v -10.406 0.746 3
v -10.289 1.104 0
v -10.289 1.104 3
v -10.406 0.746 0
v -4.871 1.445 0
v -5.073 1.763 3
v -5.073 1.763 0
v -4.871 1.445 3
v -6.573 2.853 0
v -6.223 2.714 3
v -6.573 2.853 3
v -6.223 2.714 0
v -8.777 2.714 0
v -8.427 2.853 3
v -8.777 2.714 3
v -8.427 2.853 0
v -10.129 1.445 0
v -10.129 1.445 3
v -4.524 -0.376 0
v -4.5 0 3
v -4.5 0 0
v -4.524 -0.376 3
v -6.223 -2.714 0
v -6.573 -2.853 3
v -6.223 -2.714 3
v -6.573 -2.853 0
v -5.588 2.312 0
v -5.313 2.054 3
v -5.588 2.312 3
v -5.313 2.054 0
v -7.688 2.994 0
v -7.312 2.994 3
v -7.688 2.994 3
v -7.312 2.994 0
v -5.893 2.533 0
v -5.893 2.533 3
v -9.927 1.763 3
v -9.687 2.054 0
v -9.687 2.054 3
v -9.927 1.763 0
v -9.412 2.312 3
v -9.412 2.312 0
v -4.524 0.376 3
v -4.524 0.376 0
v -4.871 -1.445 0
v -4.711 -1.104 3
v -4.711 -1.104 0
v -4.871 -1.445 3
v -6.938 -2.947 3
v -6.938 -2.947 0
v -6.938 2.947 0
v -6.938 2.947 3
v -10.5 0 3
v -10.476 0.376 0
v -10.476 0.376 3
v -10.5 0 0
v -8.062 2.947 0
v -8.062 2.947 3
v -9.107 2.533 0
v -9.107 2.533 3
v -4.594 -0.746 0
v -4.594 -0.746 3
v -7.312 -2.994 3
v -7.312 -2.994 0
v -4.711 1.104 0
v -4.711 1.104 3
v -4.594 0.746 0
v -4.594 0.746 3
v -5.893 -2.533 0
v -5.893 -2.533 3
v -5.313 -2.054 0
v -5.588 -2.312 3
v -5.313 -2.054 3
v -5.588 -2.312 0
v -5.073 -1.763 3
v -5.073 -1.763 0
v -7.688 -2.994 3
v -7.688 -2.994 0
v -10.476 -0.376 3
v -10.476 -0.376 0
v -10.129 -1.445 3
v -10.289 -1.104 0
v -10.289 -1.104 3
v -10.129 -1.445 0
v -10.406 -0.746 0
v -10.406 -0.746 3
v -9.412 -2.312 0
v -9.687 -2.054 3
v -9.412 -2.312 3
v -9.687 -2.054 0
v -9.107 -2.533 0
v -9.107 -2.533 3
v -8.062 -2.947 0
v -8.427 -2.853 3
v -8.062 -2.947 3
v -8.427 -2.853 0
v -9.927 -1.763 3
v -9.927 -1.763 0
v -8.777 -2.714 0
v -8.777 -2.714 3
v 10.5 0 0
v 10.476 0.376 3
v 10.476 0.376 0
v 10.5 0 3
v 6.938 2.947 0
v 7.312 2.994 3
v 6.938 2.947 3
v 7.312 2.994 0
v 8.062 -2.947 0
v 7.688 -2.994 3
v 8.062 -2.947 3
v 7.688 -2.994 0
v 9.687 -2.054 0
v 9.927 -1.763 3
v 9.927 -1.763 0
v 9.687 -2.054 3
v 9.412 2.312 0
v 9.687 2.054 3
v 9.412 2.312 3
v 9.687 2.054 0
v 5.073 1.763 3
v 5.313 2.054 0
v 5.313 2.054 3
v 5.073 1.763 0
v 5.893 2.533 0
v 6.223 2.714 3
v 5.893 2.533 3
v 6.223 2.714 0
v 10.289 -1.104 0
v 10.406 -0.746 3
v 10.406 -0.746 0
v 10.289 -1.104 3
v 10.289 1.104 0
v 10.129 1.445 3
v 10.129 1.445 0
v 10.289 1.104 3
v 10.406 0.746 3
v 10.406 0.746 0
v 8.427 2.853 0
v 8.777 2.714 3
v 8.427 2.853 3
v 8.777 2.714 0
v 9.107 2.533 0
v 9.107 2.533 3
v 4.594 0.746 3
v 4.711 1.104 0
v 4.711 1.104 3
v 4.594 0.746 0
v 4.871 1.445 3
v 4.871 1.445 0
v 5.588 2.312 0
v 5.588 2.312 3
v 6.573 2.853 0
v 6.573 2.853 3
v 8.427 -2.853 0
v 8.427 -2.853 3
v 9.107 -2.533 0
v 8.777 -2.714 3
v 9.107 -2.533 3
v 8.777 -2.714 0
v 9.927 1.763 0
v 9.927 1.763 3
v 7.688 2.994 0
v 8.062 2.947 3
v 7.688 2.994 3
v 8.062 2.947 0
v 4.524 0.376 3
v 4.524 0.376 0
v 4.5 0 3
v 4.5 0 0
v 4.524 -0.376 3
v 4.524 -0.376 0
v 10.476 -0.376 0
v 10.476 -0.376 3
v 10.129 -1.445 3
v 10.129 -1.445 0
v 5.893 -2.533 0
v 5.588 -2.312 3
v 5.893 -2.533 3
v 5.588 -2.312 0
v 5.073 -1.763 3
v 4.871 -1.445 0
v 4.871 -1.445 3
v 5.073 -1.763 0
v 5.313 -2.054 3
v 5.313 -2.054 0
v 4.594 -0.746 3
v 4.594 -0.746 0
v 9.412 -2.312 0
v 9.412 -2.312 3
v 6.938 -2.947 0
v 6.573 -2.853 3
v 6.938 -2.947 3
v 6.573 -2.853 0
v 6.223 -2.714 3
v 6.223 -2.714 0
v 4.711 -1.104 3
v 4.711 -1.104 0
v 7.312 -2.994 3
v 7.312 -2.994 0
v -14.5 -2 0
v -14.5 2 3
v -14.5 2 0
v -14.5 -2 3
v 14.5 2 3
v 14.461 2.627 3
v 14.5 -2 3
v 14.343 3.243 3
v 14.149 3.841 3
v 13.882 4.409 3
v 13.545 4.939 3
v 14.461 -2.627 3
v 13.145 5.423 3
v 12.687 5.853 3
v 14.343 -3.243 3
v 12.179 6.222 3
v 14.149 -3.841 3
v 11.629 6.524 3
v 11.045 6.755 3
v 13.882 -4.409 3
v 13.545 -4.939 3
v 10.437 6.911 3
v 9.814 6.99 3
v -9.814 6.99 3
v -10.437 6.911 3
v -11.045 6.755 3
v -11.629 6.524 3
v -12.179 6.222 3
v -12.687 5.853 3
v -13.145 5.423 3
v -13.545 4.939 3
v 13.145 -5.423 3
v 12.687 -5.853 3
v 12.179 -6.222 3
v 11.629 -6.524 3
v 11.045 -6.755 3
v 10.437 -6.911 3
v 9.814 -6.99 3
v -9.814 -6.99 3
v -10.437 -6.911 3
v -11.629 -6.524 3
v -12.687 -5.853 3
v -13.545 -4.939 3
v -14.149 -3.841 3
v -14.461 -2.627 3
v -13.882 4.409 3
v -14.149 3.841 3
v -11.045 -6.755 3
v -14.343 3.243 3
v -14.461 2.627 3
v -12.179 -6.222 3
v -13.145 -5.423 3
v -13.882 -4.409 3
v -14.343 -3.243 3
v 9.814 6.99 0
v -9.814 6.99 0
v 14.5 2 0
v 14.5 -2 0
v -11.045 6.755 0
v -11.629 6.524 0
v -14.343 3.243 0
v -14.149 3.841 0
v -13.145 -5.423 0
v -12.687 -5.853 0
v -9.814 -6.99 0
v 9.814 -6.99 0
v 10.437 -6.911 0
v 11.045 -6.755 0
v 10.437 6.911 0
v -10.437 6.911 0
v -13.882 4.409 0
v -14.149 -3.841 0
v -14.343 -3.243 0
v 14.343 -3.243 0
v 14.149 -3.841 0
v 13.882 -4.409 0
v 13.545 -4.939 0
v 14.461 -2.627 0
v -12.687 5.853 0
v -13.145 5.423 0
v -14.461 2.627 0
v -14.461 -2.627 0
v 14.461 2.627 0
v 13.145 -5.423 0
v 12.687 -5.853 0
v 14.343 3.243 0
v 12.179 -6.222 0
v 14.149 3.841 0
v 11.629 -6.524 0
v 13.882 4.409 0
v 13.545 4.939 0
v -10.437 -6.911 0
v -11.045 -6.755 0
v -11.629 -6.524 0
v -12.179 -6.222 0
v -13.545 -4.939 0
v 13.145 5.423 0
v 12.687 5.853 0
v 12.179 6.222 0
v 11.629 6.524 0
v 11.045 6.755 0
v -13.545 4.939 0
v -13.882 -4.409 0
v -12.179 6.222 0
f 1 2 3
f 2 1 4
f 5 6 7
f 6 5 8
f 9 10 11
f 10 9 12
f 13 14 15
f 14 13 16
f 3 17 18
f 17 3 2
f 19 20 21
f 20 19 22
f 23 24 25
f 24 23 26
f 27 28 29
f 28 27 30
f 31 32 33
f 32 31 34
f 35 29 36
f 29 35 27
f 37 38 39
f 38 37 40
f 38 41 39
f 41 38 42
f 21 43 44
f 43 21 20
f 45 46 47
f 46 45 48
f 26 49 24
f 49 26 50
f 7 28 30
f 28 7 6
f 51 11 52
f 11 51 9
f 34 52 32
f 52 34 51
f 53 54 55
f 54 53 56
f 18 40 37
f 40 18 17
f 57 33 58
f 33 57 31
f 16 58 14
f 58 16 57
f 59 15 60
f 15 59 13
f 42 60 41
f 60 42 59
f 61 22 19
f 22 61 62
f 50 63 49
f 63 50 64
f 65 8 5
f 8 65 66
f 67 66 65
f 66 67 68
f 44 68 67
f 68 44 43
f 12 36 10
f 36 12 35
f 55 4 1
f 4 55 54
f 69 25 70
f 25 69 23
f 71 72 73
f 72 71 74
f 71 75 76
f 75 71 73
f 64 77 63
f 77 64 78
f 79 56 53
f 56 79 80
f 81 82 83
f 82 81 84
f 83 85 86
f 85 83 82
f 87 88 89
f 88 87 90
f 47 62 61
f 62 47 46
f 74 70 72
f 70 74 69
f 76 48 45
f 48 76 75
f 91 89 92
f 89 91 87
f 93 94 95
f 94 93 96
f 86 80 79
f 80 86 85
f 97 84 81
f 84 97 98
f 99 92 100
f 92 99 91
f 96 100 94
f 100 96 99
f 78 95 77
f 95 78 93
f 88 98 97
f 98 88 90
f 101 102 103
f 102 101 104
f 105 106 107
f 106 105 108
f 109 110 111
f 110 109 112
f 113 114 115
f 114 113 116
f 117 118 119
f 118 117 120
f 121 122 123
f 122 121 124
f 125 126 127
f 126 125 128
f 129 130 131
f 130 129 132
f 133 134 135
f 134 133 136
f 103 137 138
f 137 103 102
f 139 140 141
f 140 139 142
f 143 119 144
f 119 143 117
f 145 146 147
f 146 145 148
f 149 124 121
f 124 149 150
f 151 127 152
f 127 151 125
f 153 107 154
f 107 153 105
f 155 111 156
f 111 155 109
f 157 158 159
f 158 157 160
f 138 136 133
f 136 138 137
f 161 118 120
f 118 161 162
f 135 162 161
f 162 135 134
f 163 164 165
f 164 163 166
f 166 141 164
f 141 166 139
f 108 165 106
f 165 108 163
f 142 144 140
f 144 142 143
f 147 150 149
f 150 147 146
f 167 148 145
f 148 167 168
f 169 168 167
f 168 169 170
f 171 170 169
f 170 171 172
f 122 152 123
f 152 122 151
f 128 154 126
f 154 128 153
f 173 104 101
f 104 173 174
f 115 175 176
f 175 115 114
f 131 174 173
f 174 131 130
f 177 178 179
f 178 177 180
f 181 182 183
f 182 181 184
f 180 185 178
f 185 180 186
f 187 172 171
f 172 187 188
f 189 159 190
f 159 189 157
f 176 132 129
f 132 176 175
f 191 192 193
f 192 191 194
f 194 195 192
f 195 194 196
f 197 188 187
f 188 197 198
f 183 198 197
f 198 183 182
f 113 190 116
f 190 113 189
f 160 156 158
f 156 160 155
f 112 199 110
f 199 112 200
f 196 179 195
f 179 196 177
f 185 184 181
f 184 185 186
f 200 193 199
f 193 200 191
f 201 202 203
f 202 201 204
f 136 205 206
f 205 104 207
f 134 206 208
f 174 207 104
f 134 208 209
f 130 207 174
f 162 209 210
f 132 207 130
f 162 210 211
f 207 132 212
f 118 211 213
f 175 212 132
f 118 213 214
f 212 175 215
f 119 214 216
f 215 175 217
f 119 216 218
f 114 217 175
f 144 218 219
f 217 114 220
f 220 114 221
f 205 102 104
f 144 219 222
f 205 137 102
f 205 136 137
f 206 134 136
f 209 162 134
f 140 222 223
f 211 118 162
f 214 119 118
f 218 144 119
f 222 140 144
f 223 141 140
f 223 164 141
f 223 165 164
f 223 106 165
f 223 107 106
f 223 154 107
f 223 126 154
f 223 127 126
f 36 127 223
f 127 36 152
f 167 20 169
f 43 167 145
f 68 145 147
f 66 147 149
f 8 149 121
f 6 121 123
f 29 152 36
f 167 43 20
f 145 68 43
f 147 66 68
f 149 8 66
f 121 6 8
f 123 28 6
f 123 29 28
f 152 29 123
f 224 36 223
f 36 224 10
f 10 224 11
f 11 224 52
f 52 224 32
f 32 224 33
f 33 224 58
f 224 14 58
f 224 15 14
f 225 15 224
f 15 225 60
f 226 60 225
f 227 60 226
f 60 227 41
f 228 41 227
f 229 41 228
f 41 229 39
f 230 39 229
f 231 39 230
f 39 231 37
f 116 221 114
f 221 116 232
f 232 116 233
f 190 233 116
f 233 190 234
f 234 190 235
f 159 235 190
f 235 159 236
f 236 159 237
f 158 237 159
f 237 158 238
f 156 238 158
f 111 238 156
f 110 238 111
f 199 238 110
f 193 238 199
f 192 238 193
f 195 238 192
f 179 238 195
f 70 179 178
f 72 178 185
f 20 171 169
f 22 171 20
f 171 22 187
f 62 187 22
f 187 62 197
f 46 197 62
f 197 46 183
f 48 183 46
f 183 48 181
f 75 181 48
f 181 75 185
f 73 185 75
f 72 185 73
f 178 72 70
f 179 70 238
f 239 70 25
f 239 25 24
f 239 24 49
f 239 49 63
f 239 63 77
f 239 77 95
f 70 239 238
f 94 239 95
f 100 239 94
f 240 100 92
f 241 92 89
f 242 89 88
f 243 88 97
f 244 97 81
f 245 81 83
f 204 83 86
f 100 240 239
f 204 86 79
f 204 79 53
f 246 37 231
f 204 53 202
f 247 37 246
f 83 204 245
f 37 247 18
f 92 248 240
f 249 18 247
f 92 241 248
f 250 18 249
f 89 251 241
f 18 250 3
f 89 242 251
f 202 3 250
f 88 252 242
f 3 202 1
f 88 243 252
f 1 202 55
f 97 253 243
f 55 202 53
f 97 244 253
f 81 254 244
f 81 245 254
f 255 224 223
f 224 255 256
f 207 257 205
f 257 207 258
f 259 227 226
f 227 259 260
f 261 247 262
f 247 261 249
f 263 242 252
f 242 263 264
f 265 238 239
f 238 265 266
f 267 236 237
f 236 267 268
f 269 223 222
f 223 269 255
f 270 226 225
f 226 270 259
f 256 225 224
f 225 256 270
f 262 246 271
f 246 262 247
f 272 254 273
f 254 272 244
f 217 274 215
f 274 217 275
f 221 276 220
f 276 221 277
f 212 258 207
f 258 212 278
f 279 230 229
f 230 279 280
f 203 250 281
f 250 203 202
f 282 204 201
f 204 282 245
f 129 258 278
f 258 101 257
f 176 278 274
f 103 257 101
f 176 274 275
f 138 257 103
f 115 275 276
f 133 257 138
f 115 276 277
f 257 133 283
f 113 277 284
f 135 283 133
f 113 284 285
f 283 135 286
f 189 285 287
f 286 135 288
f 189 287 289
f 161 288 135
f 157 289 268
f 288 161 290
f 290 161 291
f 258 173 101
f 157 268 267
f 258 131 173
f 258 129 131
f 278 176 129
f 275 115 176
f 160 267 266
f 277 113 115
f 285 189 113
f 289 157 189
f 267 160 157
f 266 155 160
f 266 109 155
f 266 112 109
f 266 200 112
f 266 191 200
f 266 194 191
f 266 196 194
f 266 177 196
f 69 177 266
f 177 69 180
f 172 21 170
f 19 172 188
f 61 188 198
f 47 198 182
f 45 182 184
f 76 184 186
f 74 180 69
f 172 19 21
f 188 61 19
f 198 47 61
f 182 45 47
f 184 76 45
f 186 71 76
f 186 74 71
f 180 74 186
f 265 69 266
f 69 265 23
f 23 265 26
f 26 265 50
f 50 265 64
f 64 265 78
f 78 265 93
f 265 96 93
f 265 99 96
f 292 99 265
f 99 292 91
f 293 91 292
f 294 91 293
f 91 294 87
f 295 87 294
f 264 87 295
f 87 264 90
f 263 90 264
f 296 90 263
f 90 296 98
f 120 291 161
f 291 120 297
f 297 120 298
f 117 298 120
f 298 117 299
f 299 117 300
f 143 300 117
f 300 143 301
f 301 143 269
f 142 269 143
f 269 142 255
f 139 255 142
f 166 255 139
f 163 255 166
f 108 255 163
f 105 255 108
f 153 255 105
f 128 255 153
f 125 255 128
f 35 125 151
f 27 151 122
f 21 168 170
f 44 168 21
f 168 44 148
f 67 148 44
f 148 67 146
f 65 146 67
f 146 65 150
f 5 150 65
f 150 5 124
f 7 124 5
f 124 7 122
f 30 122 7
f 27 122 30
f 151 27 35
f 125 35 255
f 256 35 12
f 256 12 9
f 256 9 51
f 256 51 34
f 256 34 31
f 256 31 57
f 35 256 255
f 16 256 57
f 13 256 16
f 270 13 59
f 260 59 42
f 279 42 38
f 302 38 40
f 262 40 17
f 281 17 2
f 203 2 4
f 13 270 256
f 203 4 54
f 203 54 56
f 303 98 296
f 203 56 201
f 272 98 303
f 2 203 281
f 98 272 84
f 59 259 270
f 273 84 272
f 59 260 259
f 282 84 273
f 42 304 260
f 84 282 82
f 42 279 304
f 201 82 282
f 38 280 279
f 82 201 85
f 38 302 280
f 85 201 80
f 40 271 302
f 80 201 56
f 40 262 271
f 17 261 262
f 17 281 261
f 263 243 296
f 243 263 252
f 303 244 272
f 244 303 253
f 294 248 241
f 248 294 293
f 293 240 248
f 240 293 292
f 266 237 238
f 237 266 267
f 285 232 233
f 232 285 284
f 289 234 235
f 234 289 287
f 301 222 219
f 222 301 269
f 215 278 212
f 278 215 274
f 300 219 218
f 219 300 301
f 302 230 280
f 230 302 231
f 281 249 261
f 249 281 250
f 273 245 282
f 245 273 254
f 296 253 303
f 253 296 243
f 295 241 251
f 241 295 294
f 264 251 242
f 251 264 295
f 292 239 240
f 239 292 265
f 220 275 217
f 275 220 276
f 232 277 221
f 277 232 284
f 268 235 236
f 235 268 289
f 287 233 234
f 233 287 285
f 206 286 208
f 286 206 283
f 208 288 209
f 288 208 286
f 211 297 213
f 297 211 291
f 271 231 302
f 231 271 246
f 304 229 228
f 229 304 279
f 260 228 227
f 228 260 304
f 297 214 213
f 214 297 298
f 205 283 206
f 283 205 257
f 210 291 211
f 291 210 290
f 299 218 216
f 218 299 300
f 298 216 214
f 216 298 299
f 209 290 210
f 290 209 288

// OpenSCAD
// Generated by SolidPython 1.1.3 on 2023-03-12 21:50:31
$fn = 50;


difference() {
	union() {
		translate(v = [0, 0, 0]) {
			rotate(a = [0, 0, 0]) {
				hull() {
					translate(v = [-9.5000000000, 2.0000000000, 0]) {
						rotate(a = [0, 0, 0]) {
							translate(v = [0, 0, 0]) {
								rotate(a = [0, 0, 0]) {
									cylinder(h = 3, r = 5);
								}
							}
						}
					}
					translate(v = [9.5000000000, 2.0000000000, 0]) {
						rotate(a = [0, 0, 0]) {
							translate(v = [0, 0, 0]) {
								rotate(a = [0, 0, 0]) {
									cylinder(h = 3, r = 5);
								}
							}
						}
					}
					translate(v = [-9.5000000000, -2.0000000000, 0]) {
						rotate(a = [0, 0, 0]) {
							translate(v = [0, 0, 0]) {
								rotate(a = [0, 0, 0]) {
									cylinder(h = 3, r = 5);
								}
							}
						}
					}
					translate(v = [9.5000000000, -2.0000000000, 0]) {
						rotate(a = [0, 0, 0]) {
							translate(v = [0, 0, 0]) {
								rotate(a = [0, 0, 0]) {
									cylinder(h = 3, r = 5);
								}
							}
						}
					}
				}
			}
		}
	}
	union() {
		translate(v = [-7.5000000000, 0.0000000000, 0]) {
			rotate(a = [0, 0, 0]) {
				translate(v = [0, 0, -50]) {
					rotate(a = [0, 0, 0]) {
						cylinder(h = 100, r = 3.0000000000);
					}
				}
			}
		}
		translate(v = [7.5000000000, 0.0000000000, 0]) {
			rotate(a = [0, 0, 0]) {
				translate(v = [0, 0, -50]) {
					rotate(a = [0, 0, 0]) {
						cylinder(h = 100, r = 3.0000000000);
					}
				}
			}
		}
	}
}
/***********************************************
*********      SolidPython code:      **********
************************************************
 
from solid import *
import os
import subprocess

import oomB

import opsc_library_gen

mode = "laser"
#mode = "3d_print"

defined_objects = {}

radius_dict = {}
countersunk_dict = {}


def set_mode(m):
    global mode
    mode = m
    radius_dict['M6'] = 6.5/2
    radius_dict['M3'] = 3.3/2
    if mode == "laser":
        radius_dict['M6'] = 6/2
        radius_dict['M3'] = 3/2

    countersunk_dict['M3'] = {}
    countersunk_dict['M3']['little_rad'] = radius_dict['M3']
    countersunk_dict['M3']['big_rad'] = (5.5+0.6)/2
    if mode == "laser":
        countersunk_dict['M3']['big_rad'] = (4.75+0.6)/2
        countersunk_dict['M3']['little_rad'] = (4.75+0.6)/2

    countersunk_dict['M3']['height'] = 1.7


def opsc_make_object(filename, objects, save_type="none",resolution=50, layers = 1, tilediff = 200, mode="laser", overwrite=True):
    if overwrite or not os.path.exists(filename):
        set_mode(mode)
        save_type = save_type.lower()
        os.makedirs(os.path.dirname(filename), exist_ok=True)
        final_object = opsc_get_object(objects, mode = mode)
        # Save the final object to the specified filename    
        scad_render_to_file(final_object, filename, file_header='$fn = %s;' % resolution, include_orig_code=True)
        if mode == "laser":
            filename_laser = filename.replace(".scad","-flat.scad")
            scad_render_to_file(getLaser(final_object, layers=layers, tilediff=tilediff), filename_laser, file_header='$fn = %s;' % resolution, include_orig_code=True)
            if save_type == "all":
                saveToAll(filename_laser)
            elif save_type == "dxf":
                saveToDxf(filename_laser)
        if save_type == "all":
            saveToAll(filename)
        elif save_type == "dxf":
            saveToDxf(filename)


def opsc_get_object(objects, mode = "laser"):
    # Create the solidpython objects only include the positive objects and if they don't have inclusion or their inclusion is either all or mode
    # Initialize an empty list to store the results
    positive_objects = []

    # Iterate over the "objects" list
    for obj in objects:
        # Check if the current object has a "type" key with a value of "positive"
        if obj['type'] == 'positive':
            # Check if the current object has an "inclusion" key and its value matches "mode",
            # or if the current object does not have an "inclusion" key at all
            if not 'inclusion' in obj or obj['inclusion'] == "all" or obj['inclusion'] == mode:
                # Call the "get_opsc_item" function with the current object as an argument
                opsc_item = get_opsc_item(obj)
                # Add the result to the "positive_objects" list
                positive_objects.append(opsc_item)
# Initialize an empty list to store the results
    negative_objects = []

    # Iterate over the "objects" list
    for obj in objects:
        # Check if the current object has a "type" key with a value of "negative"
        if obj['type'] == 'negative':
            # Check if the current object has an "inclusion" key and its value matches "mode",
            # or if the current object does not have an "inclusion" key at all
            if not 'inclusion' in obj or obj['inclusion'] == "all" or obj['inclusion'] == mode:
                # Call the "get_opsc_item" function with the current object as an argument
                opsc_item = get_opsc_item(obj)
                # Add the result to the "negative_objects" list
                negative_objects.append(opsc_item)
    
    #positive_objects = [get_opsc_item(obj) for obj in objects if obj['type'] == 'positive']
    #negative_objects = [get_opsc_item(obj) for obj in objects if obj['type'] == 'negative']
    # Union the positive objects
    positive_object = union()(*positive_objects)
    # Union the negative objects
    negative_object = union()(*negative_objects)
    # Create the final object by subtracting the negative objects from the positive objects
    return difference()(positive_object, negative_object)

def get_opsc_item(params):
    # A dictionary to map radius string values to numerical values
    #radius_dict = {'small': 5, 'medium': 10, 'large': 15}
    # An array of function names for basic shapes
    basic_shapes = ['cube', 'sphere', 'cylinder']
    
    # An array of function names for other shapes
    other_shapes = ['hole', 'slot', 'rounded_rectangle', 'countersunk']
    


    # Convert radius to r if present, and remove radius from the params dictionary
    if 'radius' in params:
        if isinstance(params['radius'], str):
            # Use the radius_dict to map the radius string value to a numerical value
            params['r'] = radius_dict[params['radius']]
        else:
            params['r'] = params['radius']
        del params['radius']
    

    # Check if the object type is a basic shape
    if params['shape'] in basic_shapes:
        # Remove shape and unexpected dictionary values
        allowed_keys = {'size', 'r', 'r1', 'r2', 'd', 'h', 'rw', 'rh', 'dw', 'dh'}
        shape_params = {k: v for k, v in params.items() if k in allowed_keys}

        # Call the corresponding function for the shape parameter, using ** notation to pass the shape_params dictionary as keyword arguments
        return get_opsc_transform(params,globals()[params['shape']](**shape_params))
    
    # If the object type is not a basic shape, check if it's a defined object or one of the other shapes
    elif params['shape'] in other_shapes:
        # Call the corresponding function for the shape parameter, passing the params dictionary as an argument
        p2 = copy.deepcopy(params)
        p2["pos"] = [0,0,0]
        return get_opsc_transform(params,globals()[params['shape']](p2))
    
    # If the object is not a basic shape or a defined object, try to import it from a .scad file
    else:
        obj = defined_objects[params['shape']]
        return get_opsc_transform(params,obj)

def get_opsc_transform(params, solid_obj):
    # Rotate the object based on the 'rot' field in the params dictionary, or the 'rotX', 'rotY', and 'rotZ' fields if 'rot' is not present
    rot = params.get('rot', [])
    if rot:
        rotX, rotY, rotZ = rot
    else:
        rotX = params.get('rotX', 0)
        rotY = params.get('rotY', 0)
        rotZ = params.get('rotZ', 0)
    solid_obj = rotate([rotX, rotY, rotZ])(solid_obj)

    # Translate the object based on the 'pos' field in the params dictionary, or the 'x', 'y', and 'z' fields if 'pos' is not present
    pos = params.get('pos', [])
    if pos:
        x, y, z = pos
    else:
        x = params.get('x', 0)
        y = params.get('y', 0)
        z = params.get('z', 0)
    solid_obj = translate([x, y, z])(solid_obj)
    return solid_obj


import random

def opsc_easy_array(type, shape, repeats, pos_start, shift_arr, **kwargs):
    for i in range(0,3):
        repeats.append(1)
        pos_start.append(0)
        shift_arr.append(0)
    return_objects = []

    for x in range(0,repeats[0]):
        for y in range(0,repeats[1]):
            for z in range(0,repeats[2]):
                return_objects.append(opsc_easy(type, shape, pos=[pos_start[0]+x*shift_arr[0],pos_start[1]+y*shift_arr[1],pos_start[2]+z*shift_arr[2]], **kwargs))
    return return_objects                



def opsc_easy(type, shape, **kwargs):
    obj = {
        'type': type,
        'shape': shape
    }
    for param in ['size', 'r', 'r1', 'r2', 'd', 'h', 'rw', 'rh', 'dw', 'dh', 'pos', 'x', 'y', 'z', 'rot', 'rotX', 'rotY', 'rotZ', "w", "inclusion"]:
        if param in kwargs:
            obj[param] = kwargs[param]
    return obj

def hole(params):
    p2 = copy.deepcopy(params)  
    # Check if the radius is a string and replace it with the corresponding value from the dictionary
    if isinstance(p2['r'], str):
        p2['r'] = radius_dict[p2['r']]
    
    # Set the height to 100 if not specified
    if 'h' not in p2:
        p2['h'] = 100
        p2["pos"] = [0,0,-50]
    p2["center"] = True
    # Create the cylinder object
    p2["shape"] = "cylinder"
    p2["type"] = "positive"

    return get_opsc_item(p2)

import copy

def countersunk(params):
    p2 = copy.deepcopy(params)
    counter_rad = p2['r']
    p2['r'] = radius_dict[p2['r']]
    hp = copy.deepcopy(p2)
    hp["type"] = "positive"
    hp["shape"] = "hole"
    del hp["rot"]
    hol = get_opsc_item(hp)
    
    cp = copy.deepcopy(p2)
    cp["h"] = countersunk_dict[counter_rad]["height"]
    cp["r2"] = countersunk_dict[counter_rad]["little_rad"]
    cp["r1"] = countersunk_dict[counter_rad]["big_rad"]
    del cp["r"]
    del cp["rot"]
    cp["type"] = "positive"
    cp["shape"] = "cylinder"
    cp["pos"] = [0,0,0]

    top = get_opsc_item(cp)
    return union()(hol,top)



def slot(params):  
    p2 = copy.deepcopy(params) 
    if isinstance(p2['r'], str):
        p2['r'] = radius_dict[p2['r']]
    p2["type"] = "positive"
    p2["shape"] = "hole"
    del p2["rot"]
    p2["pos"] = [0,0,0]
    left = copy.deepcopy(p2)
    right = copy.deepcopy(p2)
    left["pos"][0] = p2["w"] / 2 - p2["r"] 
    
    right["pos"][0] = -p2["w"] / 2 + p2["r"] 
    pass
    leftObj = get_opsc_item(left)
    rightObj = get_opsc_item(right)
    return hull()(leftObj, rightObj)

def rounded_rectangle(params):   
    p2 = copy.deepcopy(params) 
    p2["h"] = p2["size"][2]
    p2["pos"] = p2.get("pos", [0, 0, 0]) 
    p2["type"] = "positive"
    p2["shape"] = "hole"
    p2["pos"] = [0,0,0]
    
    if 'rot' in p2:
        del p2["rot"]   
    if 'r' not in p2:
        p2["r"] = 5 
    tl = copy.deepcopy(p2)
    tr = copy.deepcopy(p2)
    bl = copy.deepcopy(p2)
    br = copy.deepcopy(p2)
    tl["pos"][0] = -(p2["size"][0] - p2["r"]*2)/2
    tl["pos"][1] = (p2["size"][1] - p2["r"]*2)/2
    tr["pos"][0] = (p2["size"][0] - p2["r"]*2)/2
    tr["pos"][1] = (p2["size"][1] - p2["r"]*2)/2
    bl["pos"][0] = -(p2["size"][0] - p2["r"]*2)/2
    bl["pos"][1] = -(p2["size"][1] - p2["r"]*2)/2
    br["pos"][0] = (p2["size"][0] - p2["r"]*2)/2
    br["pos"][1] = -(p2["size"][1] - p2["r"]*2)/2
    del tl["size"]
    del tr["size"]
    del bl["size"]
    del br["size"]
    tlo = get_opsc_item(tl)
    tro = get_opsc_item(tr)
    blo = get_opsc_item(bl)
    bro = get_opsc_item(br)    
    return hull()(tlo, tro, blo, bro)



def import_scad_object(filename):
    # Import the .scad file and convert it to a solidpython object
    #filename = "parts"
    obj = import_scad(filename)
    return obj.main()
    


import os
import solid as solidpython

# A dictionary to store the defined objects


def load_scad_objects():
    opsc_library_gen.gen_library(defined_objects)

import random

def test(num_objects):
    objects = []
    for i in range(num_objects):
        # Choose a random shape
        #shape = random.choice(['cube', 'sphere', 'cylinder', 'hole', 'slot', "rounded_rectangle"])
        shape = random.choice(["rounded_rectangle"])

        # Choose a random type
        type = random.choice(['positive', 'negative'])
        
        # Create an empty object dictionary
        obj = {'shape': shape, 'type': type}
        
        # Set shape-specific parameters
        if obj['shape'] in ['cube']:
            obj['size'] =  [random.uniform(5, 15), random.uniform(5, 15), random.uniform(5, 15)]
        if obj['shape'] in ['rounded_rectangle']:
            obj['size'] =  [random.uniform(5, 15), random.uniform(5, 15), random.uniform(5, 15)]
            obj['r'] = random.uniform(0.5, 5)
        elif obj['shape'] == 'sphere':
            obj['r'] = random.uniform(5, 15)
        elif obj['shape'] in ['cylinder', 'hole']:
            obj['r'] = random.uniform(0.5, 5)
            obj['h'] = random.uniform(5, 15)
        elif obj['shape'] == 'slot':
            obj['r'] = random.uniform(0.5, 5)
            obj['h'] = random.uniform(5, 15)
            obj['w'] = random.uniform(5, 15)
        
        # Set a random position and rotation
        obj['pos'] = [random.uniform(-20, 20), random.uniform(-20, 20), random.uniform(-20, 20)]
        obj['rot'] = [random.uniform(-180, 180), random.uniform(-180, 180), random.uniform(-180, 180)]
        
        # Add the object to the list
        objects.append(obj)
    return objects

####### old file saving
def saveToAll(fileIn):
    saveToDxf(fileIn)
    saveToPng(fileIn)
    saveToStl(fileIn)
    saveToSvg(fileIn)

def saveToDxf(fileIn, fileOut="", copy_to_laser=True):
    if fileOut == "":
        fileOut = fileIn.replace(".scad",".dxf")
    saveToFile(fileIn, fileOut)


    
def saveToPng(fileIn, fileOut="",extra="--render"):
    if fileOut == "":
        fileOut = fileIn.replace(".scad",".png")
    saveToFile(fileIn, fileOut)

def saveToStl(fileIn, fileOut=""):
    if fileOut == "":
        fileOut = fileIn.replace(".scad",".stl")
    saveToFile(fileIn, fileOut)
    
def saveToSvg(fileIn, fileOut=""):
    if fileOut == "":
        fileOut = fileIn.replace(".scad",".svg")
    saveToFile(fileIn, fileOut)

def saveToFile(fileIn, fileOut,extra=""):
    #extra = extra + " --colorscheme Tomorrow"

    launchStr = 'openscad -o "' + fileOut + '"' + extra + ' "' + fileIn + '"'
    if ".png" in fileOut:
        launchStr = launchStr + " --render"
    print("            saveToFile launch string: " + launchStr)
    subprocess.run(launchStr)
    x=0

def getLaser(final_object,start=1.5,layers=1,thickness=3,tilediff=200):
        rv= []

        for x in range(layers):
            rv.append(translate([0,x*tilediff,0])(
                    projection()(
                        intersection()(translate([-500,-500,start+x*thickness])(cube(size=[1000,1000,0.1])),
                            final_object
                        )
                    )
            )
            )
            
        return union()(rv)

set_mode("laser")
load_scad_objects() 
 
************************************************/
